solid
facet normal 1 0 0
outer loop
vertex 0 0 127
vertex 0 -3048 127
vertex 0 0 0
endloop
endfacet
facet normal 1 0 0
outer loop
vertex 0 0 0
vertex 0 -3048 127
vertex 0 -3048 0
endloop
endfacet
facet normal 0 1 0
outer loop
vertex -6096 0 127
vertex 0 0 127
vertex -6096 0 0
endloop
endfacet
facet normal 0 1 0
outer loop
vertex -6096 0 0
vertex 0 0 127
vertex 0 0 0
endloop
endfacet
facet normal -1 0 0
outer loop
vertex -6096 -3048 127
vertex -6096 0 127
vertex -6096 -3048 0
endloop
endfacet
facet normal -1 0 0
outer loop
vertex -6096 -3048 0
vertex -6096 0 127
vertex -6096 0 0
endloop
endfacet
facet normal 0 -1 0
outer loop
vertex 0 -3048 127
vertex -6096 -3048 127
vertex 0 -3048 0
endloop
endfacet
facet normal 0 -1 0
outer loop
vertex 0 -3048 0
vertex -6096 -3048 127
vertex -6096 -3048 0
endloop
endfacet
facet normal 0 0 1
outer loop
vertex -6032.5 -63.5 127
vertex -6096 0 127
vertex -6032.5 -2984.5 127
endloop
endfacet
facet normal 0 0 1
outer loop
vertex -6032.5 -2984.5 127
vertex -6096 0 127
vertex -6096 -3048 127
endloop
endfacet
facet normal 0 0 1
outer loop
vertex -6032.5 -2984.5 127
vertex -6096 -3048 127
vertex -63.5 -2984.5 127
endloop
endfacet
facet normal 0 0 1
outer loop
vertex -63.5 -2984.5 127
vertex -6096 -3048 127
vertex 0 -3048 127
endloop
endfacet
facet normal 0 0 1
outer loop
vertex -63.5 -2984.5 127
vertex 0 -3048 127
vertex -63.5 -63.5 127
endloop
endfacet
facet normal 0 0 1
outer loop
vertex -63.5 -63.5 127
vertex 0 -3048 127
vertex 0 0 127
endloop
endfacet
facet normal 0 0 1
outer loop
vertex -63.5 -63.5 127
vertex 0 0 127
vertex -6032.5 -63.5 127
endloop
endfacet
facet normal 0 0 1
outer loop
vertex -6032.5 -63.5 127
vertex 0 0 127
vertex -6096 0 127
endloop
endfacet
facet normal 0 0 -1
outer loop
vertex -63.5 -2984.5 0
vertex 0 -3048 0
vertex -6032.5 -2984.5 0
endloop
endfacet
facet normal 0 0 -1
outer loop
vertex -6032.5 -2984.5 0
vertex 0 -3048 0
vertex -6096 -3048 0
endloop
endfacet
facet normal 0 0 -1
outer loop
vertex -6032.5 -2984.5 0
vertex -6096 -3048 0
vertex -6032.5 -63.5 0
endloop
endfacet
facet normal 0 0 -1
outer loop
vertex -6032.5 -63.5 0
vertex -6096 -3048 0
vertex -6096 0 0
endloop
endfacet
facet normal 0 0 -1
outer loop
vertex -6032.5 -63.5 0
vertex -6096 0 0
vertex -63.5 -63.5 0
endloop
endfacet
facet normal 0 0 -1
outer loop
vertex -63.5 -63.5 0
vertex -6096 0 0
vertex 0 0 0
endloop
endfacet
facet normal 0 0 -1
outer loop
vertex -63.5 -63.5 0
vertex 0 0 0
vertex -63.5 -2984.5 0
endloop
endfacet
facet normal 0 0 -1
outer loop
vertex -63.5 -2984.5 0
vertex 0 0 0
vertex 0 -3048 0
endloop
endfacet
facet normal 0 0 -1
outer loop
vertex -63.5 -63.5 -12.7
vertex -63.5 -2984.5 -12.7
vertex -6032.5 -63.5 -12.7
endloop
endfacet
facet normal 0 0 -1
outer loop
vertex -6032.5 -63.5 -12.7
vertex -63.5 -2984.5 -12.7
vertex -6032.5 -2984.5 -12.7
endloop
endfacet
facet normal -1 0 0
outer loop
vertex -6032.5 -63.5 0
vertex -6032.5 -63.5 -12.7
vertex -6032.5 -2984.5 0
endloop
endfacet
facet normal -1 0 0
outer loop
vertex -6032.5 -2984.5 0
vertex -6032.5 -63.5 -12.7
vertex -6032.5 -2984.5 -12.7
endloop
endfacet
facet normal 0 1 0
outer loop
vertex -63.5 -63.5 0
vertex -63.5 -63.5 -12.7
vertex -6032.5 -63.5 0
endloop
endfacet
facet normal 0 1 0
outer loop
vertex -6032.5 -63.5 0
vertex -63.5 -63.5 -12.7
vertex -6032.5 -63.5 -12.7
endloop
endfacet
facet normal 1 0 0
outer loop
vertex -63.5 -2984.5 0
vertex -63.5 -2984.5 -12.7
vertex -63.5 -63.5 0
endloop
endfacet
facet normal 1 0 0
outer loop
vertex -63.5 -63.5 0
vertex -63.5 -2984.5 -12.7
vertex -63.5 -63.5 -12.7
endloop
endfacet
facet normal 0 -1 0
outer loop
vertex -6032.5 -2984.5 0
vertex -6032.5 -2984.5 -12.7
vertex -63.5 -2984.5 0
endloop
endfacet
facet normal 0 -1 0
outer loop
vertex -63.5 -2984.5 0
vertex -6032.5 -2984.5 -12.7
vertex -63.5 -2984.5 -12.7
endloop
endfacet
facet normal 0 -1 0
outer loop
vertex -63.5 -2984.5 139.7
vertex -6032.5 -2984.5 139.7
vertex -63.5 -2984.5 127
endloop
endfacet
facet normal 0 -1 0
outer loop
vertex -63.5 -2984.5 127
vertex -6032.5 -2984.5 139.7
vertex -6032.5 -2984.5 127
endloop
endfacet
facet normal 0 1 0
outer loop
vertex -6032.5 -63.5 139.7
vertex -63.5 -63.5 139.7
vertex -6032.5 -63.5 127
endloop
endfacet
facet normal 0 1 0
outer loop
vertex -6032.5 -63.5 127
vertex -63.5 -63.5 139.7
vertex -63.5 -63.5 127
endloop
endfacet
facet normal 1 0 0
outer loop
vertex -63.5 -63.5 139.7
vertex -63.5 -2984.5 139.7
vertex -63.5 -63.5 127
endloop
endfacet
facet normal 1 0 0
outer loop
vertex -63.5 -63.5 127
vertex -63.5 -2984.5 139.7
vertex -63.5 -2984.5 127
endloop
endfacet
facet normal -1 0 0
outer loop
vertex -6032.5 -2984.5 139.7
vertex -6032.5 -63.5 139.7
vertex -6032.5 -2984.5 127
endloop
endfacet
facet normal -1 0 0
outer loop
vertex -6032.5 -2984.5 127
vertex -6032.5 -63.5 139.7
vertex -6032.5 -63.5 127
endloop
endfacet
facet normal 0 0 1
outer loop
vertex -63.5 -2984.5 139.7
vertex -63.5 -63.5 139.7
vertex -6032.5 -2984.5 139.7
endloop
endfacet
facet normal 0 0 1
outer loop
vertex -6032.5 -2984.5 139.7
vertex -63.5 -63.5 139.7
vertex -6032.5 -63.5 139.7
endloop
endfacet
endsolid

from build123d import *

# Parameters (mm, degrees)
SKETCH1_W                = 6096
SKETCH1_H                = 3048
BOSS_EXTRUDE2_DEPTH      = 127
CUT_EXTRUDE1_REACH       = 6818.718
SKETCH3_W                = 5969
SKETCH3_H                = 2921
BOSS_EXTRUDE3_DEPTH      = 12.7
BOSS_EXTRUDE3_DEPTH_BACK = 139.7
SKETCH4_W                = 5969
SKETCH4_H                = 2921


with BuildPart() as part:
    # Sketch1 → Boss-Extrude2 (new body)
    with BuildSketch(Plane.XY):
        with Locations((-3048, -1524)):
            Rectangle(SKETCH1_W, SKETCH1_H)
    extrude(amount=BOSS_EXTRUDE2_DEPTH)

    # Sketch3 → Cut-Extrude1 (cut, up to next)
    with BuildSketch(Plane.XY.offset(127), mode=Mode.PRIVATE) as cut_extrude1_sk1:
        with Locations((-3048, -1524)):
            Rectangle(SKETCH3_W, SKETCH3_H)
    cut_extrude1_tool1 = extrude(cut_extrude1_sk1.sketch, amount=-CUT_EXTRUDE1_REACH, mode=Mode.PRIVATE) & part.part
    add(cut_extrude1_tool1.solids().sort_by_distance((-3048, -1524, 127))[0], mode=Mode.SUBTRACT)

    # Sketch4 → Boss-Extrude3 (add, two sides: drawn at the far end of the back side and taken through both)
    with BuildSketch(Plane.XY.offset(127).offset(-BOSS_EXTRUDE3_DEPTH_BACK)):
        with Locations((-3048, -1524)):
            Rectangle(SKETCH4_W, SKETCH4_H)
    extrude(amount=BOSS_EXTRUDE3_DEPTH + BOSS_EXTRUDE3_DEPTH_BACK)


solid = part.part
